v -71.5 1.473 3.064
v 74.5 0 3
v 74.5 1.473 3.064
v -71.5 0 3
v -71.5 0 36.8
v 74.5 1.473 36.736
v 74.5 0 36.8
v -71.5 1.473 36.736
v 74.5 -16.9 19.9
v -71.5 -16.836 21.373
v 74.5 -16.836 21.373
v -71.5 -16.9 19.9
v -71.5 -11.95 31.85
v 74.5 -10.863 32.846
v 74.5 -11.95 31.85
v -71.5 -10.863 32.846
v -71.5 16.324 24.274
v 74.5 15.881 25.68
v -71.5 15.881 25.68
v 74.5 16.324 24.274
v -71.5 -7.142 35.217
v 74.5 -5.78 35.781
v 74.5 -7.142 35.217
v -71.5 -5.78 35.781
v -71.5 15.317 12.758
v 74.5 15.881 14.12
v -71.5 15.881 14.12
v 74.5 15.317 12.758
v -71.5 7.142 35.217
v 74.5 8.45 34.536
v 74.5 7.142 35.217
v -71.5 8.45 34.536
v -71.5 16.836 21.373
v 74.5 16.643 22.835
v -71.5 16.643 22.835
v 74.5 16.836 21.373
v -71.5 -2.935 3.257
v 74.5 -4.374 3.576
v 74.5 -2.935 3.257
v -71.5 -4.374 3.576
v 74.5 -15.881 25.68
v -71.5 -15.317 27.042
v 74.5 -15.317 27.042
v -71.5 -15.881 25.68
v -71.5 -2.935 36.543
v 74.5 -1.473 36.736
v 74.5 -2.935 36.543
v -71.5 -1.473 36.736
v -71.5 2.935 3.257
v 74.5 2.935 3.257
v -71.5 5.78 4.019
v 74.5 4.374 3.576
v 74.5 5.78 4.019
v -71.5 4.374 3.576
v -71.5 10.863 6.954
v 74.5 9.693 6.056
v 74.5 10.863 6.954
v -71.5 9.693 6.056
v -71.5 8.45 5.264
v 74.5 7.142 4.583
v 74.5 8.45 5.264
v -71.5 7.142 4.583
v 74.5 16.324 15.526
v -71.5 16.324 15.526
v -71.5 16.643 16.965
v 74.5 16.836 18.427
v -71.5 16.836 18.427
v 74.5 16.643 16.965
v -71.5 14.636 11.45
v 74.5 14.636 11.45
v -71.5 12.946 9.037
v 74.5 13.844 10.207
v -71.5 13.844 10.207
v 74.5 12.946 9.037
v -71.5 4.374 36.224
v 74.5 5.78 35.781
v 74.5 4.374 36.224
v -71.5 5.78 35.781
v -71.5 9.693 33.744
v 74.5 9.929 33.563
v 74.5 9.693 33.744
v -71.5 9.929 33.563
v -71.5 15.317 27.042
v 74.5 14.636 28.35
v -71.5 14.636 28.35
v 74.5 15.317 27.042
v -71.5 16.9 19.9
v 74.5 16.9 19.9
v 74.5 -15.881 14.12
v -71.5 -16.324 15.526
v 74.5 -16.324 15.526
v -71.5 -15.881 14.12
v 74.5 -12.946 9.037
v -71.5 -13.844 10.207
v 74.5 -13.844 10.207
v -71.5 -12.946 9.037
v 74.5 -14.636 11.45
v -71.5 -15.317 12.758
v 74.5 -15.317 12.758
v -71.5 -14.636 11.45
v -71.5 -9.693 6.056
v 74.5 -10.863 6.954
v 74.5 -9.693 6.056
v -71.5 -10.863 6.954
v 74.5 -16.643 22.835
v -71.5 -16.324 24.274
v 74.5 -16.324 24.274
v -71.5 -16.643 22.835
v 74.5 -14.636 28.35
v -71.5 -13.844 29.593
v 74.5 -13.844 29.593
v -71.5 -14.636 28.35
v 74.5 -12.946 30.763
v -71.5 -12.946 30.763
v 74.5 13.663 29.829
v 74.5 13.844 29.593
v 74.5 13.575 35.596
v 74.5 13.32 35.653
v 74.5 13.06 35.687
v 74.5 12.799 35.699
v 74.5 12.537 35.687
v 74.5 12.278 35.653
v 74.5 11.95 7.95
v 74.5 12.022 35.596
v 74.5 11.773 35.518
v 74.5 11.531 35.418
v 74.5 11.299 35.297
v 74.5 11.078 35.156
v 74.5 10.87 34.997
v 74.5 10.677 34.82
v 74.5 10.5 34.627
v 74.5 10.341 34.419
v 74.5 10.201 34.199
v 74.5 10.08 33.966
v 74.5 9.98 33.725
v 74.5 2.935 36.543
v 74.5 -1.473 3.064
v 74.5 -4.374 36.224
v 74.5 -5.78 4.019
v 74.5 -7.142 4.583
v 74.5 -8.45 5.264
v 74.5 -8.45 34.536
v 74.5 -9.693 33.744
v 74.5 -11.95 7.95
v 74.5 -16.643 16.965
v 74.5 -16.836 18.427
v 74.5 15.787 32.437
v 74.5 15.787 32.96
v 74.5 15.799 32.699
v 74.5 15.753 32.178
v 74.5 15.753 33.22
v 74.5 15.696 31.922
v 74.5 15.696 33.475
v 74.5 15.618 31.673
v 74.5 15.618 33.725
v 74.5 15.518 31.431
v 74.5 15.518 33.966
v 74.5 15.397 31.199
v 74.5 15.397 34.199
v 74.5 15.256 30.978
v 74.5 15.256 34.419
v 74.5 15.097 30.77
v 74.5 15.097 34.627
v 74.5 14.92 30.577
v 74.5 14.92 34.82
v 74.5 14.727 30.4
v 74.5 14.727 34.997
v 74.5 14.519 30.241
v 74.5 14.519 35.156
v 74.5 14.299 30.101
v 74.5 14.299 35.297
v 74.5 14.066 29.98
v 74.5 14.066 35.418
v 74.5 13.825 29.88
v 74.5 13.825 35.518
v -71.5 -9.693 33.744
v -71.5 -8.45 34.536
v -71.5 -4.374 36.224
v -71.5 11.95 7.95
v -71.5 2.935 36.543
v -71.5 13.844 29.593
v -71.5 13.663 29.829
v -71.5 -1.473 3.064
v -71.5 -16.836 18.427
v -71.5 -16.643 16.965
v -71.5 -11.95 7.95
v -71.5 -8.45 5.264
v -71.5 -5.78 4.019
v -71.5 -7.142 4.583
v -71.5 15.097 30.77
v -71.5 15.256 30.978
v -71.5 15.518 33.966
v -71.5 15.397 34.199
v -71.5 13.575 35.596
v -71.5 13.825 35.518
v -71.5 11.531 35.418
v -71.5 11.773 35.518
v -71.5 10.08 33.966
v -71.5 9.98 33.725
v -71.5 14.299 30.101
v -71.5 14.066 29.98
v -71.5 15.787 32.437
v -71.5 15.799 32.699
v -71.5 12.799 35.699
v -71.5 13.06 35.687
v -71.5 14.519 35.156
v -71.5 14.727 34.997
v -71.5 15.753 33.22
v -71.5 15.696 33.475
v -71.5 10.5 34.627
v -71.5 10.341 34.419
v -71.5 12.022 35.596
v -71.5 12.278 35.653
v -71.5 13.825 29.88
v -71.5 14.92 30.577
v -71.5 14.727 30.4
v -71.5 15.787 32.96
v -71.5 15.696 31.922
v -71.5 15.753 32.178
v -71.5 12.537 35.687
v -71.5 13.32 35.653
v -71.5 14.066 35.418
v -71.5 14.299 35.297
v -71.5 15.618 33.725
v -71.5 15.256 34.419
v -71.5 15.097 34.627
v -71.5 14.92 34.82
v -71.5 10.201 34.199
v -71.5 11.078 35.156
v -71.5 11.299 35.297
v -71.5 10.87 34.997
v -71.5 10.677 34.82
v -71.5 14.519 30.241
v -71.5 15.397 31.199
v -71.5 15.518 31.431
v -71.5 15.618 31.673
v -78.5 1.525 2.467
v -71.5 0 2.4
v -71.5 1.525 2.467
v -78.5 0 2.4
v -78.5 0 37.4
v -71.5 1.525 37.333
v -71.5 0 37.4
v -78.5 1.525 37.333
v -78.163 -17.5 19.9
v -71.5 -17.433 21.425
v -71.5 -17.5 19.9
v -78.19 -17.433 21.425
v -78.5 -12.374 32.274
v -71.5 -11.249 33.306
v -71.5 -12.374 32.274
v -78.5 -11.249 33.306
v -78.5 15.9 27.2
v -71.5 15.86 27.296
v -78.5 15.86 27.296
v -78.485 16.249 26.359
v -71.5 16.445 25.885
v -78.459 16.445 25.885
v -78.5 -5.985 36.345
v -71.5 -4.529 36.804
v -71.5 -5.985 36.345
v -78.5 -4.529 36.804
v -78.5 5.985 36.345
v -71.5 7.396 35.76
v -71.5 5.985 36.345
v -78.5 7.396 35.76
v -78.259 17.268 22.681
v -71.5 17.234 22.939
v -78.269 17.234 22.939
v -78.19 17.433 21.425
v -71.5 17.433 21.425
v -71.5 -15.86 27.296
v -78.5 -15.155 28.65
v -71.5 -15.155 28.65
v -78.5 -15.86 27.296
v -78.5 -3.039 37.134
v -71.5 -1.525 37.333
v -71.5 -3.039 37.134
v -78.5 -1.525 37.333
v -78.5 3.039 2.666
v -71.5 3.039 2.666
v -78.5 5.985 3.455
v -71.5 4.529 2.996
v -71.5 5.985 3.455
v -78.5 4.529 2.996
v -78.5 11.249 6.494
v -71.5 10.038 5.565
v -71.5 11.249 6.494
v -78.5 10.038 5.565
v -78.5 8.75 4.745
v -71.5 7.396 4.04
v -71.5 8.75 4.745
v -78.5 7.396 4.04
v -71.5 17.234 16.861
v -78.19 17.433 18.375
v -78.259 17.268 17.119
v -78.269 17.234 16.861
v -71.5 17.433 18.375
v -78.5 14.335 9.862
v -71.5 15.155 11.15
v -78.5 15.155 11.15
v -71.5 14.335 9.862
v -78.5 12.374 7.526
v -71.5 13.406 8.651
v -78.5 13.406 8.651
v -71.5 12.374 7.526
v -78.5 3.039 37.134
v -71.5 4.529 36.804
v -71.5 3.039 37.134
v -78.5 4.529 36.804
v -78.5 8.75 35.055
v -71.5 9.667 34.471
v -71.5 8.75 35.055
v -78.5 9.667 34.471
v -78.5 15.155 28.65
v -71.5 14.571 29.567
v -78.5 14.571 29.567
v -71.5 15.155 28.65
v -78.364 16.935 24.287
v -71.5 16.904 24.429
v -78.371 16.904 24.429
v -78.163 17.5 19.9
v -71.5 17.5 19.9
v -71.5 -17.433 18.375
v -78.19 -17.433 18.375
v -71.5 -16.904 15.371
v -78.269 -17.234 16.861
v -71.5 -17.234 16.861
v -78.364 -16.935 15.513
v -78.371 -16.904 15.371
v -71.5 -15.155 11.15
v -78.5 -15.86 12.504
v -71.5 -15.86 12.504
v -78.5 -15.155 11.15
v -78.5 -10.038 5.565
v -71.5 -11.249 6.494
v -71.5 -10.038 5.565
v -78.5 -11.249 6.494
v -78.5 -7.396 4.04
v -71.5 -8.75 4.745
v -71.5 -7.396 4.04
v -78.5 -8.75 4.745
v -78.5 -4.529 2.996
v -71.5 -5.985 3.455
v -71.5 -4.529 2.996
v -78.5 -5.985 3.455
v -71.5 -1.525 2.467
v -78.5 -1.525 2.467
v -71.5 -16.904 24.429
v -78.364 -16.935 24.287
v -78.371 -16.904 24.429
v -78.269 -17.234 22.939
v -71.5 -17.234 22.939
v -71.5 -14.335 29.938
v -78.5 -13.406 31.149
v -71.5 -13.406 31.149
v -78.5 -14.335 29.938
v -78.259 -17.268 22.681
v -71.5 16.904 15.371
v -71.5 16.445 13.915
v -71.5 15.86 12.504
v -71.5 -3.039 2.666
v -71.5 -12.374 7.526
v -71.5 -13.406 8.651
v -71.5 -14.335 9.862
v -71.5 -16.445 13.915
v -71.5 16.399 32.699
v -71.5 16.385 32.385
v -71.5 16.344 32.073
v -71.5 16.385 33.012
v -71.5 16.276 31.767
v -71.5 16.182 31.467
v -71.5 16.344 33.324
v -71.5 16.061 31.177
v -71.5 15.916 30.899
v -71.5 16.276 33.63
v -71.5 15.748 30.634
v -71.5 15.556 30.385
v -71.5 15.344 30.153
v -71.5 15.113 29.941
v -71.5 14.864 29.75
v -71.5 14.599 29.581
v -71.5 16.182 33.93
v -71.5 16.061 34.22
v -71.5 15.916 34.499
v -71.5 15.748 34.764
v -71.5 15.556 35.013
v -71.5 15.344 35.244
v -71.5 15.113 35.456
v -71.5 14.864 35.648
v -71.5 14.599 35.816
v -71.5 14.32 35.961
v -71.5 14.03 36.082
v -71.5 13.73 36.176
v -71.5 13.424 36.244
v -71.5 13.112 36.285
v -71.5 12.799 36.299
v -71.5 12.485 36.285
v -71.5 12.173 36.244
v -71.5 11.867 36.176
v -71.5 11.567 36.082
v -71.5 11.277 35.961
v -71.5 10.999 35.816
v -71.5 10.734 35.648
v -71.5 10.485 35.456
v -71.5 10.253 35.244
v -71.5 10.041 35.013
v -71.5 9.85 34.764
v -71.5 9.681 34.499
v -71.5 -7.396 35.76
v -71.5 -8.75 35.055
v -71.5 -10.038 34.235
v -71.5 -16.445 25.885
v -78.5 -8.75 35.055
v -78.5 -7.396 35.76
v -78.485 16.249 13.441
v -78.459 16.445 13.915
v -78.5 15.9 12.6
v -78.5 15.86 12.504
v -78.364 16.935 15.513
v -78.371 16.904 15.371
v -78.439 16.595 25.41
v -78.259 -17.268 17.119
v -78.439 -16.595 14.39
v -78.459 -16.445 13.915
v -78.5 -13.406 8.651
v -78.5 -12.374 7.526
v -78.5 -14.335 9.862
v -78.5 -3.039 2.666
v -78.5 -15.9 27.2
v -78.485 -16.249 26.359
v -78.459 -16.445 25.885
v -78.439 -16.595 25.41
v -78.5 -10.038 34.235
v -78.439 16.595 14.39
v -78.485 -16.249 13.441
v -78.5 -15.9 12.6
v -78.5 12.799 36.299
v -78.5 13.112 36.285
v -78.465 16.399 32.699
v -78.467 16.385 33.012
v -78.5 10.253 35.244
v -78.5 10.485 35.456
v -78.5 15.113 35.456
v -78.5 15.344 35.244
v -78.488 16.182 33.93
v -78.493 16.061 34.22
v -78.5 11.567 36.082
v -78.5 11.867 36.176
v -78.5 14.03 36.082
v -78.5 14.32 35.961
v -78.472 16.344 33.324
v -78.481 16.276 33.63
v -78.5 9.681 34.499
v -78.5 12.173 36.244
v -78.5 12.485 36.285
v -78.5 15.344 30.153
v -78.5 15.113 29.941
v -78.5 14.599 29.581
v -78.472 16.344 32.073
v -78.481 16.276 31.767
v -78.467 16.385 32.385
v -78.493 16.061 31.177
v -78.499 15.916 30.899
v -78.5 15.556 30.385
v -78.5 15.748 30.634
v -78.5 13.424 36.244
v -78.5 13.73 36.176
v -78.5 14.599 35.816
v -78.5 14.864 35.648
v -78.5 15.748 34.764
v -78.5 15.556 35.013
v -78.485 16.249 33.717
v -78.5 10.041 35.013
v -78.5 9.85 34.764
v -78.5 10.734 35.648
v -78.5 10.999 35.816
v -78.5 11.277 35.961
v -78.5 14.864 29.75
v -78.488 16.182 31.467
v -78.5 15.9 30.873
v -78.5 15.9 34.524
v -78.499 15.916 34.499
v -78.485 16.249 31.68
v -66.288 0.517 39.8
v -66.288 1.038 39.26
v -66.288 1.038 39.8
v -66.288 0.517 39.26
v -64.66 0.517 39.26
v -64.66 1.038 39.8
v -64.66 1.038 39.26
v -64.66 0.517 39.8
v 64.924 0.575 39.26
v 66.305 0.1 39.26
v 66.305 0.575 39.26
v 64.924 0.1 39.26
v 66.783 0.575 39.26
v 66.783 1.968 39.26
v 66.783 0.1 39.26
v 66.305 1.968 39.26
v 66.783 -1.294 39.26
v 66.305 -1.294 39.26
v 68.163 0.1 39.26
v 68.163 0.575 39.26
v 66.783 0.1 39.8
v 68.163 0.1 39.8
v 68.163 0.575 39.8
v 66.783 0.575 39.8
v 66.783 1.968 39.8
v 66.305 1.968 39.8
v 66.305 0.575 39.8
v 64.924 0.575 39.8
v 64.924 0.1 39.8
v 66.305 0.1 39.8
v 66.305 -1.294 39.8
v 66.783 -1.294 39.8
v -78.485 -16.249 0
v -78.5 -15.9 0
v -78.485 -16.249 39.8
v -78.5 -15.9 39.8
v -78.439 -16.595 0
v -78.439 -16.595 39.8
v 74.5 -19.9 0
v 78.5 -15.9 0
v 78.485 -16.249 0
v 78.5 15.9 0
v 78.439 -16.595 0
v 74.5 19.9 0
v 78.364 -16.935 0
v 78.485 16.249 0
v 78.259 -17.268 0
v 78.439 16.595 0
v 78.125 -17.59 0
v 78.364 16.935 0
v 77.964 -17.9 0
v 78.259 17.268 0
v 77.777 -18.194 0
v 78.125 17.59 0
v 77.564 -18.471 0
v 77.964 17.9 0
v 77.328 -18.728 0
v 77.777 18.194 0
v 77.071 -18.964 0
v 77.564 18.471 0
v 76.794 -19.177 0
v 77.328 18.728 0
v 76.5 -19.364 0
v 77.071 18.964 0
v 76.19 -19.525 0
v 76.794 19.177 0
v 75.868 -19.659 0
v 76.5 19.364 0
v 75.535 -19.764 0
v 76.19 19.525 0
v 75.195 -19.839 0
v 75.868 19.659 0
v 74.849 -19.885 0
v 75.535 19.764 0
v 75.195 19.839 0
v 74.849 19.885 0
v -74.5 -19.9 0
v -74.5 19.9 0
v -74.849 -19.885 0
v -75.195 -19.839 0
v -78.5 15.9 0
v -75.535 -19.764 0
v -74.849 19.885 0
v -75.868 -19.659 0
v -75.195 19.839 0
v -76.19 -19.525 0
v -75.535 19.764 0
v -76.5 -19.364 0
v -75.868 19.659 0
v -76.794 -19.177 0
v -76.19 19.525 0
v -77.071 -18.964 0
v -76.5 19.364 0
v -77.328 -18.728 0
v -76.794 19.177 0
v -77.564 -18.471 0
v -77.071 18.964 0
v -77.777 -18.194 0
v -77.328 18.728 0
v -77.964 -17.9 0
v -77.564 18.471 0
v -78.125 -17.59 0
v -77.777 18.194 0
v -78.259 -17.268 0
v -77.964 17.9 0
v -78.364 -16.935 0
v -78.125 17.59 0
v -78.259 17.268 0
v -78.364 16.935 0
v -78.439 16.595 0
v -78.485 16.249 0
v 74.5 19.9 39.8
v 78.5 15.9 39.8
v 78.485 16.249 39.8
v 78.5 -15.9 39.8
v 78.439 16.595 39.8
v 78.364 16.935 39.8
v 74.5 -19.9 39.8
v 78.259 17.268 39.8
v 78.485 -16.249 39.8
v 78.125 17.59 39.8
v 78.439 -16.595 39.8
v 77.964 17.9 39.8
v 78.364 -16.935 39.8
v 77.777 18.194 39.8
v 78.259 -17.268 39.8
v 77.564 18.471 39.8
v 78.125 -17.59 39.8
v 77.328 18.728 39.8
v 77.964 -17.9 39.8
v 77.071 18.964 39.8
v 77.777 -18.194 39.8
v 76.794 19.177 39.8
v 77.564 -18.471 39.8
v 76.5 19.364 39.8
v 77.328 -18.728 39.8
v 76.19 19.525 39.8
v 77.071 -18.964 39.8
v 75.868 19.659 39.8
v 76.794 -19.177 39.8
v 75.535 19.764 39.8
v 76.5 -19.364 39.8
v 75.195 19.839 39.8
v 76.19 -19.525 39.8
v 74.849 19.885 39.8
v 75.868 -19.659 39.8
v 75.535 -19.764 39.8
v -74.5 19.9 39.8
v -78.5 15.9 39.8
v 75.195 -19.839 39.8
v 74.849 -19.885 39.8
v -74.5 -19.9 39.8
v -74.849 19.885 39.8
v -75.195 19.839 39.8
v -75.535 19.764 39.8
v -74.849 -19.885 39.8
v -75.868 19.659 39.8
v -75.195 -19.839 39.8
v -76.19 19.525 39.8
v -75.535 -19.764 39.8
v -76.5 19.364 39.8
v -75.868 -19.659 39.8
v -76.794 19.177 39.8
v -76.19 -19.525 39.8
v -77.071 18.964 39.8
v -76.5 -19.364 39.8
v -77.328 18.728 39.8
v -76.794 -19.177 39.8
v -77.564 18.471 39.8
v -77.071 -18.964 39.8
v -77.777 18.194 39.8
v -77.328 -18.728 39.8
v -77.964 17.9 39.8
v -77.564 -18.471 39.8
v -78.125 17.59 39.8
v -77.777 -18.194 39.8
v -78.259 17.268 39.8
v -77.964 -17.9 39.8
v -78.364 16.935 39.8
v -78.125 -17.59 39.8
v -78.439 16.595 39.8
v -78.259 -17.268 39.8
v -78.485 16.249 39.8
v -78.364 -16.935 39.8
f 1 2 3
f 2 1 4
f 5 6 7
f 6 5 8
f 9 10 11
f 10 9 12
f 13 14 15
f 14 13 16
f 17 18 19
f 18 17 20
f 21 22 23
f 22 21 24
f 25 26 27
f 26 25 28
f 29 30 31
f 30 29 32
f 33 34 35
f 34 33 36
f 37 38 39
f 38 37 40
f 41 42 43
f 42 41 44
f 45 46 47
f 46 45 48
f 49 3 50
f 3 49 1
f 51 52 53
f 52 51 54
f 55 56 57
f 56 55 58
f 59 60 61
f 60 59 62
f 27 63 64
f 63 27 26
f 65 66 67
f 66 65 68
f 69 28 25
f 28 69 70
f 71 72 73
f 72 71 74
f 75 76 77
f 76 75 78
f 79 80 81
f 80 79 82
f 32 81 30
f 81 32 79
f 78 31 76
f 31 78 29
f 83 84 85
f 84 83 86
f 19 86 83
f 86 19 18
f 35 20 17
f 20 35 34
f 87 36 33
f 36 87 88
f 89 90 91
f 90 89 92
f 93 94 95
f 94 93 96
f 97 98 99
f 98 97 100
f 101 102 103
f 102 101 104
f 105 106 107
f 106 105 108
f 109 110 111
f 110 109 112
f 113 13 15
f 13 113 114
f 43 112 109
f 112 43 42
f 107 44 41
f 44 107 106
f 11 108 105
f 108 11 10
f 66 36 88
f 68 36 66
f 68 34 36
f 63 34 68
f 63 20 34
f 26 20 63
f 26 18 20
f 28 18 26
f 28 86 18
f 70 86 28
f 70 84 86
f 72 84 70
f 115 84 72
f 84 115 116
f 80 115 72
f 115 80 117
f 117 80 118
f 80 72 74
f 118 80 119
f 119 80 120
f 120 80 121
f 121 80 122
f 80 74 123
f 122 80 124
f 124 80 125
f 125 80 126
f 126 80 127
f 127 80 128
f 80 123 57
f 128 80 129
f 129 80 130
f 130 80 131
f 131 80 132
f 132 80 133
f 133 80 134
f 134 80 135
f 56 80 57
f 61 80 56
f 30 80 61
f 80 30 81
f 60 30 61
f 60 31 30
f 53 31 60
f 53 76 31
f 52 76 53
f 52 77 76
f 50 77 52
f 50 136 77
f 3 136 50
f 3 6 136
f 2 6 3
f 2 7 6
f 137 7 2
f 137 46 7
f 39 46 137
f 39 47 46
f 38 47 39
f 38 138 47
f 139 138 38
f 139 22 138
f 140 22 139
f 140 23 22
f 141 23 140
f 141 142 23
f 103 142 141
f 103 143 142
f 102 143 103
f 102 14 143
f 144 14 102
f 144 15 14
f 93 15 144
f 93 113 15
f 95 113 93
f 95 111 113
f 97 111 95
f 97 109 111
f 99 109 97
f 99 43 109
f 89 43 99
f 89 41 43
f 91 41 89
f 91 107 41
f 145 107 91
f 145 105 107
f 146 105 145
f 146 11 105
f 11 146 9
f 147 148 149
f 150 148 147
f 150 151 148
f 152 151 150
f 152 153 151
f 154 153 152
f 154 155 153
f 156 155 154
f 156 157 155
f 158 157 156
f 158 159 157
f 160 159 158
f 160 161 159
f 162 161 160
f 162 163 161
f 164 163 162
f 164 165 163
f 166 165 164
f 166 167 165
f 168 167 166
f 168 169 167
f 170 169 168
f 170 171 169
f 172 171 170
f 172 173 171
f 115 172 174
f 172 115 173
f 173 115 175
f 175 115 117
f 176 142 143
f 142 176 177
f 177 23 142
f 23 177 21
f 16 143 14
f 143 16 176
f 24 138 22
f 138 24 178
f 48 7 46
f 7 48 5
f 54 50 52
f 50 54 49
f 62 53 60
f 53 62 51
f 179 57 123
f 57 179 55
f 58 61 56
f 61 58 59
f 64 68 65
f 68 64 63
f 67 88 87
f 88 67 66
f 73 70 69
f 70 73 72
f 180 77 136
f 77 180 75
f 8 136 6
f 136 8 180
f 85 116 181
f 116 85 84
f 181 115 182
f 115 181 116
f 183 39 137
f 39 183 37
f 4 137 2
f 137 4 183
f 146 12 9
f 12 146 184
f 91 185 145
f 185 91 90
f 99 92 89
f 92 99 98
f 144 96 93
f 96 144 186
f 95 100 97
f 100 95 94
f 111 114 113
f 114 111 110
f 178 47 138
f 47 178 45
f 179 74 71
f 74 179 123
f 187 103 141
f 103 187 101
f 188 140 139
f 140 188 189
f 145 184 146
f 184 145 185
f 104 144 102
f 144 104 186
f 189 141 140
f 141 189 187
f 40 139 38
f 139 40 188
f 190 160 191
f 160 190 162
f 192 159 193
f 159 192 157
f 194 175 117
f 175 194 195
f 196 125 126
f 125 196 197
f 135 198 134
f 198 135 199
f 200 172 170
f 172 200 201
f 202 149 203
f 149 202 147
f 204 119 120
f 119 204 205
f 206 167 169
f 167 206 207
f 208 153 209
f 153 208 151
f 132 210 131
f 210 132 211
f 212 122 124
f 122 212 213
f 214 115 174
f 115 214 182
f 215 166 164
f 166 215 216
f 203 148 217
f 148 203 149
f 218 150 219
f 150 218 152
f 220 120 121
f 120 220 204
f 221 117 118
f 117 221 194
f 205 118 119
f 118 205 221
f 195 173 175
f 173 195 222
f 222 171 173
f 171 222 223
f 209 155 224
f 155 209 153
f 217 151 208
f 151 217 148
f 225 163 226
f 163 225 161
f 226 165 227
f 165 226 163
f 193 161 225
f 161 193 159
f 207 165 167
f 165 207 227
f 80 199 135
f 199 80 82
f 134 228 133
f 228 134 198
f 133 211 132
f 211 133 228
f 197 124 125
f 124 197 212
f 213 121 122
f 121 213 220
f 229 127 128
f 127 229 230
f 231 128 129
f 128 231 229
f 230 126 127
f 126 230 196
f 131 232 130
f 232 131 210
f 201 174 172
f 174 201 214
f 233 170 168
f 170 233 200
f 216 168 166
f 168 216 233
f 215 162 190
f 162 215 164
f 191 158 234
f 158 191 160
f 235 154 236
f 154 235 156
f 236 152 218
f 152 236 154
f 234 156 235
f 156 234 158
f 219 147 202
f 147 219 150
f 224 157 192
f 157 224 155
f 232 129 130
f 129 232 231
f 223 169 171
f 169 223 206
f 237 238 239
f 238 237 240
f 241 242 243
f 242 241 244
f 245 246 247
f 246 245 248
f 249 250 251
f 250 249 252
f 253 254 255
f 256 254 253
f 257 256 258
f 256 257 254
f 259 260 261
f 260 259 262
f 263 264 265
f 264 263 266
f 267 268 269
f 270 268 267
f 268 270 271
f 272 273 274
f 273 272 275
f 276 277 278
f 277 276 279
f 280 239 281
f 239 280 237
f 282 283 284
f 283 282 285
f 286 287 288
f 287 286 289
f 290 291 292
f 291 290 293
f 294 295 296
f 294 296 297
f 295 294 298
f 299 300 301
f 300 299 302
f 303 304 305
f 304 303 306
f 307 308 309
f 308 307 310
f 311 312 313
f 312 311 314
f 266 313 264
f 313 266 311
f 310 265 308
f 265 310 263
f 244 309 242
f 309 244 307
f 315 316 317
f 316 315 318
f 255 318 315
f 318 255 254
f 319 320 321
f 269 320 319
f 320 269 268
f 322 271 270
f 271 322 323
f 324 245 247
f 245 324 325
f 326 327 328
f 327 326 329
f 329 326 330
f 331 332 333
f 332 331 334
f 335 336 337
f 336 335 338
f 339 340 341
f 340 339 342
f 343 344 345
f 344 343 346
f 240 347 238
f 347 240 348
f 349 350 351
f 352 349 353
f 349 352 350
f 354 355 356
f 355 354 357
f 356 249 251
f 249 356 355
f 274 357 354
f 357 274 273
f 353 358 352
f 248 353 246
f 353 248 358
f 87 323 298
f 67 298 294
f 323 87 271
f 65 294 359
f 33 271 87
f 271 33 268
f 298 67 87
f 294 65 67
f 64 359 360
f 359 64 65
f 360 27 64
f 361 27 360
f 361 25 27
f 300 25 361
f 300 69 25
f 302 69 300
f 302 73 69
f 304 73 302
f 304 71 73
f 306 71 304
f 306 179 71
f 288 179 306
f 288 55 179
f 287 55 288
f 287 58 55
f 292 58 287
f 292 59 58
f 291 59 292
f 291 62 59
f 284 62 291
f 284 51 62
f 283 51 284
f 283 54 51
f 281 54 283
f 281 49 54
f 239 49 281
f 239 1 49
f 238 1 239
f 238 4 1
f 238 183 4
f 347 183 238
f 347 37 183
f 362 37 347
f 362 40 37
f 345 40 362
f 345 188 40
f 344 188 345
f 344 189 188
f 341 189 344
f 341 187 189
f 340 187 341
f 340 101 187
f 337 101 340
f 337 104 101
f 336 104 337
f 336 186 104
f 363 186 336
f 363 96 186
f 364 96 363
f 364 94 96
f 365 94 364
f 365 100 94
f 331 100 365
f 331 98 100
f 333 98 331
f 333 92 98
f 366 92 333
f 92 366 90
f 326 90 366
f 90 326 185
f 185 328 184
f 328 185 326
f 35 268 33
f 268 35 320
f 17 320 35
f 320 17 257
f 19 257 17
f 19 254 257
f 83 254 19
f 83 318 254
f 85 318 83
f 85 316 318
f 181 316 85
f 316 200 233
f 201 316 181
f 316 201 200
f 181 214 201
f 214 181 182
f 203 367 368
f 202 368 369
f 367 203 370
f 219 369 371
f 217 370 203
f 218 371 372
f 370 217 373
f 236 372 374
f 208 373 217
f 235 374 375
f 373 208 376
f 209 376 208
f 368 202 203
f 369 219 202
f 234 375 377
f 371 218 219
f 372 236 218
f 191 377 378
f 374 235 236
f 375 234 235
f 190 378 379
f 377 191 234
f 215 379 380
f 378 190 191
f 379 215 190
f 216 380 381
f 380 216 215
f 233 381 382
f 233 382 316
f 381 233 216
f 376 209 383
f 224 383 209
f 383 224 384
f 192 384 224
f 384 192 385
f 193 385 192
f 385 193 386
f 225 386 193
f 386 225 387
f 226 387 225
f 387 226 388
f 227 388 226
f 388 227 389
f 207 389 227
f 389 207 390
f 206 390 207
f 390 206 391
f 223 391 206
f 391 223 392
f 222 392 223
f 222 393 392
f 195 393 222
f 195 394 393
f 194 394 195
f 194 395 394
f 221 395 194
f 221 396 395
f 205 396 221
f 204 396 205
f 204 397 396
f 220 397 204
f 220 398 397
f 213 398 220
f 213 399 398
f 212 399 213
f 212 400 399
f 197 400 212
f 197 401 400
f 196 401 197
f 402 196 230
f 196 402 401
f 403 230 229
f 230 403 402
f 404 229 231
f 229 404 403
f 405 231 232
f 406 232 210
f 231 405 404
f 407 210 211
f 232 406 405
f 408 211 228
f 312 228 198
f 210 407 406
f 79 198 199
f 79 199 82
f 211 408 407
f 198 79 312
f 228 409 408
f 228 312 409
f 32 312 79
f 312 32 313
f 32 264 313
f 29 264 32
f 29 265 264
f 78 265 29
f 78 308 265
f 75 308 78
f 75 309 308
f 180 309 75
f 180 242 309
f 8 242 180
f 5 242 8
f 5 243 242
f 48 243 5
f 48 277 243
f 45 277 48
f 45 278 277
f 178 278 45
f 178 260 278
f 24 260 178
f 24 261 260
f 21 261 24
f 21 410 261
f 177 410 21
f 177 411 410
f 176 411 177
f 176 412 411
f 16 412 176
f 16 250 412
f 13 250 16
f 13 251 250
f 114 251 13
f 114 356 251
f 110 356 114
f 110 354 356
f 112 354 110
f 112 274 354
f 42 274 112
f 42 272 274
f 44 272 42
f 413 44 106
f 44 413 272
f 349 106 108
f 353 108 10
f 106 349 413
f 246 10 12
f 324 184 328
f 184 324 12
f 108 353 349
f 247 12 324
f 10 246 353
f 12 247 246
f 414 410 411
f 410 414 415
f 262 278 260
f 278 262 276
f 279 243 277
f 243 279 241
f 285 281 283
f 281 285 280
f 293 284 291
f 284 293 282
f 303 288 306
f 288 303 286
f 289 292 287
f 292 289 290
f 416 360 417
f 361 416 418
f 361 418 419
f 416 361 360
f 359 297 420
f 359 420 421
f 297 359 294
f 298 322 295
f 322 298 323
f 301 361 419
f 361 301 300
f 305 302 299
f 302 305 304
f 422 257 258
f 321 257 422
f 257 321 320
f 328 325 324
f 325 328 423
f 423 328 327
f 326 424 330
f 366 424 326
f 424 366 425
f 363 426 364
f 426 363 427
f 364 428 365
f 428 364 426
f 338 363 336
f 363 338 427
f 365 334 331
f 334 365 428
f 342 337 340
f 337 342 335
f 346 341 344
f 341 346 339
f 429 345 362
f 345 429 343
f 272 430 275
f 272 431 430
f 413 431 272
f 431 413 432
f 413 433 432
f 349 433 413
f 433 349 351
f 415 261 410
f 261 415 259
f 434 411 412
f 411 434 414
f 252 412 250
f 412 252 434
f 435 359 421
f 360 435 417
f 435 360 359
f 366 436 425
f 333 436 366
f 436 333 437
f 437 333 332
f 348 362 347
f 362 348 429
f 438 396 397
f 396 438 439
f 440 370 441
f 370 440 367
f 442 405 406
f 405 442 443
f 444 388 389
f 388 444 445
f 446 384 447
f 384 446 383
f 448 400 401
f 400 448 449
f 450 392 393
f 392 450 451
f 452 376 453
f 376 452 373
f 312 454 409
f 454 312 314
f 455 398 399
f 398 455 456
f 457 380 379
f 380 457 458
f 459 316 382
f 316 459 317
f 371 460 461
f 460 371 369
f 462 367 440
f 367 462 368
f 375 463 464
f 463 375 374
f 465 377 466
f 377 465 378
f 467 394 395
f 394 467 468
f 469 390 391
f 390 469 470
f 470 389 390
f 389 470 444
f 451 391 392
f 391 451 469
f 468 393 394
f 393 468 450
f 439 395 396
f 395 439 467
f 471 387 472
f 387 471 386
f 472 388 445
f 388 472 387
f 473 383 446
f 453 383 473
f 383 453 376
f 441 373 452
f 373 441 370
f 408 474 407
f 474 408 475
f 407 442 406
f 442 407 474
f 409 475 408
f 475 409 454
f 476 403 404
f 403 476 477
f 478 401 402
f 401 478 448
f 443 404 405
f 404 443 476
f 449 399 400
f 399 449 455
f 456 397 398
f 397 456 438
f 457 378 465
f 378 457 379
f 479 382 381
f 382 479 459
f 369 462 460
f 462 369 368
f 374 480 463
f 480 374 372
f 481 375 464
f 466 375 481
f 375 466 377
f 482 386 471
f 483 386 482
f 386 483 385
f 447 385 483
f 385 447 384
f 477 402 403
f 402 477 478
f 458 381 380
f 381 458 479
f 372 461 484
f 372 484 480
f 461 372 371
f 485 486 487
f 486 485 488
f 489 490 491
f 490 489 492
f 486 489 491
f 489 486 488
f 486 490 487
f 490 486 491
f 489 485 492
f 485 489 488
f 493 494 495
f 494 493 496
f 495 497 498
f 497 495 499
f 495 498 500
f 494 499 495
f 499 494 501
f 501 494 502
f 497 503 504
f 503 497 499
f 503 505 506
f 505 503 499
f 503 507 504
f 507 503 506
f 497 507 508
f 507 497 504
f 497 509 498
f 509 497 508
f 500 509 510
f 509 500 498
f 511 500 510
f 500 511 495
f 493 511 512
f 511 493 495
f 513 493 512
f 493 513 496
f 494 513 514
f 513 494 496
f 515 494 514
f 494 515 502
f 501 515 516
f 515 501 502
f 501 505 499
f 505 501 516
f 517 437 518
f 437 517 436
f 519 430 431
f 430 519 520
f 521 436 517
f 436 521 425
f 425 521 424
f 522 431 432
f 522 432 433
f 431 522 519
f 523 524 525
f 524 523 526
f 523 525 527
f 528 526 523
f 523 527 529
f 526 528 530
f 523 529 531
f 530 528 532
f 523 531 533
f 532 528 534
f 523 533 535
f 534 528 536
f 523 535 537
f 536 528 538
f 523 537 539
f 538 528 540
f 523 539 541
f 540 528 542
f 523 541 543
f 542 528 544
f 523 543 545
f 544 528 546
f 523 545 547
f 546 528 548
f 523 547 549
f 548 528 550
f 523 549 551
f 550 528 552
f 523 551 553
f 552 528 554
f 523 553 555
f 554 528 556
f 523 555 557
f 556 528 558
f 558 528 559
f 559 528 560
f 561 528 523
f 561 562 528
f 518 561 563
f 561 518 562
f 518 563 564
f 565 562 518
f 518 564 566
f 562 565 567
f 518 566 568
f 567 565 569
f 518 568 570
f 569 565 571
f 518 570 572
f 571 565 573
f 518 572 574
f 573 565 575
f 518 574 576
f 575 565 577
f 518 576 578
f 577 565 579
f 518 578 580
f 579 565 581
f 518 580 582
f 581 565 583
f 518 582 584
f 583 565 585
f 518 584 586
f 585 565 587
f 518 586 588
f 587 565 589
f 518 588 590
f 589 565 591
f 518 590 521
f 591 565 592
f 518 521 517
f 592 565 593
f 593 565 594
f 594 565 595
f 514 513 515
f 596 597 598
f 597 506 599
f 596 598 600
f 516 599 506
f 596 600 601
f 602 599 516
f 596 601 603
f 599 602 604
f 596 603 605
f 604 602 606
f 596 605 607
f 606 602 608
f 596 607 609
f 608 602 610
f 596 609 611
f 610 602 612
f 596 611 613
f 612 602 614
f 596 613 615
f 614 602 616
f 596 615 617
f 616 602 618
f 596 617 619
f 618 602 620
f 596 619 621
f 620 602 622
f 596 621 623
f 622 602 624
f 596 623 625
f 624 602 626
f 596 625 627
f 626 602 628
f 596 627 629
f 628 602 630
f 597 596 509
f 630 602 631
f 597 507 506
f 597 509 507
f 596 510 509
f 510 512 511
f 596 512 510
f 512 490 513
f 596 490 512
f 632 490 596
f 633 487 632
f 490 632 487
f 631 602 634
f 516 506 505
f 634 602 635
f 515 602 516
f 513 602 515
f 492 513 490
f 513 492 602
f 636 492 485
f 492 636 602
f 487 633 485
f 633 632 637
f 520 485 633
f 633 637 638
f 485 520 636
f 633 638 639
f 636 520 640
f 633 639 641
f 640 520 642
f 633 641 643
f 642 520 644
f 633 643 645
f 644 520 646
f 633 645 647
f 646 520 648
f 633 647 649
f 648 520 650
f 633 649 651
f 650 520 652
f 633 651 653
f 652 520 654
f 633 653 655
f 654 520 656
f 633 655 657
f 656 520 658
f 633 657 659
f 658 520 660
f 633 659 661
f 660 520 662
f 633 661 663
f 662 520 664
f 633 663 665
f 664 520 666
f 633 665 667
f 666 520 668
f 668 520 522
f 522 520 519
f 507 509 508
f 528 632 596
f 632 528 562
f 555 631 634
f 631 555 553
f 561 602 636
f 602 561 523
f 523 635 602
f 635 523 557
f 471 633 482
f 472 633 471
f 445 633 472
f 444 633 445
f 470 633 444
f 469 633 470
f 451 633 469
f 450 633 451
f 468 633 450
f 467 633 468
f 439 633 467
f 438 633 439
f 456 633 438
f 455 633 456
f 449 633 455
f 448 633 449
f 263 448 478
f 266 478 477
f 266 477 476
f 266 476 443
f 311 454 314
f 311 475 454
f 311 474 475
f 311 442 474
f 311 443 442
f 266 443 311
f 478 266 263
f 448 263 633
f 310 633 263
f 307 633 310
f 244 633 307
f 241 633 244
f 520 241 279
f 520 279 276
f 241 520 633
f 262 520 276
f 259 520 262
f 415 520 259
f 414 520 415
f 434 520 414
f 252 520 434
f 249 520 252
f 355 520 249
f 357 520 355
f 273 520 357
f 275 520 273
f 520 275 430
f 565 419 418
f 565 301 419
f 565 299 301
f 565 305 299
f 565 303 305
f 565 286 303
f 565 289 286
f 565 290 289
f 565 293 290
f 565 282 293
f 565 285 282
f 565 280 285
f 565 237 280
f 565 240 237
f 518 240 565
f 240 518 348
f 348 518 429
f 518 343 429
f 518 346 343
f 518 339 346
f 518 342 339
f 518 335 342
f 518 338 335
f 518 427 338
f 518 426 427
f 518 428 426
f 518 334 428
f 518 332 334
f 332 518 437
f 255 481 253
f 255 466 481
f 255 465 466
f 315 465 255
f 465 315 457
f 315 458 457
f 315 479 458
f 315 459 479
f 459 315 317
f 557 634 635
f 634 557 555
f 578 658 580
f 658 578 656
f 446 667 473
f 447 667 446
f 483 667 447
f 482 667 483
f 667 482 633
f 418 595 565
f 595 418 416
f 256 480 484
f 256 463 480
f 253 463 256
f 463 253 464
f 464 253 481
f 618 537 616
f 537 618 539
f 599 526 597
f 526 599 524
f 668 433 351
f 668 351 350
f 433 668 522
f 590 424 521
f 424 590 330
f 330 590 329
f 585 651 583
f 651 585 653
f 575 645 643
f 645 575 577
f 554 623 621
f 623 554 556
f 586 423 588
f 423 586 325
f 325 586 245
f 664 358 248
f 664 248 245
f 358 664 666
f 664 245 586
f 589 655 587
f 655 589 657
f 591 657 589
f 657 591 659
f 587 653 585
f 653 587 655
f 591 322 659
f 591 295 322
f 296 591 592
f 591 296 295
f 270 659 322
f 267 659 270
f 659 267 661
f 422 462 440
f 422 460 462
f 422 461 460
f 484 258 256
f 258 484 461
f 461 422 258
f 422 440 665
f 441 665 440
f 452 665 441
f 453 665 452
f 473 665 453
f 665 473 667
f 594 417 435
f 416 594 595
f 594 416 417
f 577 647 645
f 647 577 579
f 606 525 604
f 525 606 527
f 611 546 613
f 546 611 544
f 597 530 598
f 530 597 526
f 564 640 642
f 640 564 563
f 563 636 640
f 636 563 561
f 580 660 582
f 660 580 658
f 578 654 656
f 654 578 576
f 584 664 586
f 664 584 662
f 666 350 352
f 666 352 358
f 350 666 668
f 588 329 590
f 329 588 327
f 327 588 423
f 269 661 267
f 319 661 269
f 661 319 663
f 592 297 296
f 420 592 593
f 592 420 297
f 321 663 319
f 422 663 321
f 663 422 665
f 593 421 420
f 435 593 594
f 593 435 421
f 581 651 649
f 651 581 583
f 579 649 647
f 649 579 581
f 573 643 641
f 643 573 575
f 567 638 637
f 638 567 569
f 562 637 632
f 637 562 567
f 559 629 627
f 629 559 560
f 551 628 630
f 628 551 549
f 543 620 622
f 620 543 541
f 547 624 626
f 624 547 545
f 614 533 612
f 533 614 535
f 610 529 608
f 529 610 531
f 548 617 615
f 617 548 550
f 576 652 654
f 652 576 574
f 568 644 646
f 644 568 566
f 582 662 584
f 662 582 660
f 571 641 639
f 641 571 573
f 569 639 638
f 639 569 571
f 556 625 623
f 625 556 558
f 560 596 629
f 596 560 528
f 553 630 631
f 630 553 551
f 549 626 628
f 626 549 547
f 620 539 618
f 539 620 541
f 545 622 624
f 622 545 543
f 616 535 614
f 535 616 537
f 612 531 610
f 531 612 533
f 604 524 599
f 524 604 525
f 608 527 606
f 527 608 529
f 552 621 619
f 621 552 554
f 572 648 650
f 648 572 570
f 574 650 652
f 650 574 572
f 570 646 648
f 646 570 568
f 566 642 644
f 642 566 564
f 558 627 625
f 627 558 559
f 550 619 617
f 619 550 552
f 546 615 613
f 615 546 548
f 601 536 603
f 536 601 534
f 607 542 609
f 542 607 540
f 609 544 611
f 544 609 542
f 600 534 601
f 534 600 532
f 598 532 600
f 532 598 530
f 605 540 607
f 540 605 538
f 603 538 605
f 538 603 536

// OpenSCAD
// OpenSCAD 2021.01 compatible
// Single-piece sleeve case for one 33140 LiFePO4 battery
//
// Design intent:
// - one-piece case, closed at +X end
// - open insertion mouth at -X end
// - battery slides in lengthwise
// - already-soldered wire runs parallel to the battery
// - cable channel is directly beside the battery cavity and slightly overlaps it,
//   forming a connected side groove so the wire can slide in with the cell.
// - cable channel is rotated toward a corner of the battery cavity, so it uses
//   existing corner material instead of forcing the sleeve wider on one side.
//
// Assumed 33140 size: 33 mm diameter x 140 mm length.

$fn = 72;

// -----------------------------
// Battery and cable parameters
// -----------------------------
battery_diameter       = 33.0;
battery_length         = 150.0;
diameter_clearance     = 0.8;
length_clearance       = 3.0;

cable_channel_d        = 6;    // adjust to your insulated wire diameter
cable_channel_overlap  = 1.8;    // overlap with battery cavity, makes connected groove

// Cable channel angular placement around the battery cavity cross-section.
// 0   = old position on the +Y side, which made the case wider.
// +45 = upper +Y/+Z corner, using existing corner material.
// -45 = lower +Y/-Z corner, using existing corner material.
// +90 / -90 are possible true vertical positions, but they usually require
// extra height instead of saving material.
cable_channel_angle_deg = 45;

// -----------------------------
// Case parameters
// -----------------------------
wall                   = 3.0;
closed_end_wall        = 4.0;
corner_radius          = 4.0;

mouth_relief_len       = 7.0;
mouth_extra_d          = 1.2;

// Output modes:
// "print"   = printable sleeve only
// "cutaway" = cutaway preview with optional reference cell/cable
// "solid_preview" = whole sleeve with optional references
view_mode              = "print";
show_reference_cell    = false;
show_reference_cable   = false;

// -----------------------------
// Derived geometry
// -----------------------------
cavity_d               = battery_diameter + diameter_clearance;
cell_r                 = cavity_d / 2;
cable_r                = cable_channel_d / 2;

case_len               = battery_length + length_clearance + closed_end_wall;
open_x                 = -case_len / 2;
closed_x               =  case_len / 2;
cavity_x0              = open_x - 1.0;                 // cuts through open mouth
cavity_x1              = closed_x - closed_end_wall;   // leaves closed end wall

cell_center_y          = 0;
cell_center_z          = wall + cell_r;

// Directly adjacent groove, rotated around the battery cavity. The overlap means
// the battery cavity and cable channel are one connected interior shape instead
// of two separated holes. OpenSCAD trigonometric functions use degrees.
cable_center_offset    = cell_r + cable_r - cable_channel_overlap;
cable_center_y         = cell_center_y + cable_center_offset * cos(cable_channel_angle_deg);
cable_center_z         = cell_center_z + cable_center_offset * sin(cable_channel_angle_deg);

// Outer sleeve bounds are now calculated from both the battery cavity and cable
// channel. At +/-45 degrees this keeps the old battery-only envelope and avoids
// the former one-sided +Y material extension.
case_y_min             = min(cell_center_y - cell_r, cable_center_y - cable_r) - wall;
case_y_max             = max(cell_center_y + cell_r, cable_center_y + cable_r) + wall;
case_z_min             = min(cell_center_z - cell_r - wall, cable_center_z - cable_r - wall);
case_z_max             = max(cell_center_z + cell_r + wall, cable_center_z + cable_r + wall);

label_z                = case_z_max + 0.02;
label_engrave_depth    = 0.55;

// -----------------------------
// Helpers
// -----------------------------
module x_cylinder_between(x0, x1, y, z, d) {
    translate([x0, y, z])
        rotate([0, 90, 0])
            cylinder(h = x1 - x0, d = d);
}

module rounded_box_bounds(xmin, xmax, ymin, ymax, zmin, zmax, r) {
    h = zmax - zmin;
    translate([0, 0, zmin])
        hull() {
            for (x = [xmin + r, xmax - r])
                for (y = [ymin + r, ymax - r])
                    translate([x, y, 0])
                        cylinder(h = h, r = r);
        }
}

module outer_sleeve() {
    rounded_box_bounds(
        open_x, closed_x,
        case_y_min, case_y_max,
        case_z_min, case_z_max,
        corner_radius
    );
}

module internal_voids() {
    // Main battery cavity: open at -X, blind at +X.
    x_cylinder_between(cavity_x0, cavity_x1, cell_center_y, cell_center_z, cavity_d);

    // Parallel cable channel directly next to the battery cavity.
    // Because it overlaps the battery cavity, it creates a side groove for the wire.
    x_cylinder_between(cavity_x0, cavity_x1, cable_center_y, cable_center_z, cable_channel_d);

    // Open-mouth relief so cell + soldered wire start more easily.
    x_cylinder_between(open_x - 1.2, open_x + mouth_relief_len,
                       cell_center_y, cell_center_z, cavity_d + mouth_extra_d);

    x_cylinder_between(open_x - 1.2, open_x + mouth_relief_len,
                       cable_center_y, cable_center_z, cable_channel_d + mouth_extra_d);
}

module polarity_mark_cutouts() {
    // Recessed marks cut inward into the top surface.
    // This avoids raised outward-facing text that can be damaged or interfere
    // when the sleeve is printed standing on the closed end.
    translate([open_x + 13, (case_y_min + case_y_max) / 2, case_z_max - label_engrave_depth + 0.01])
        linear_extrude(height = label_engrave_depth + 0.04)
            text("-", size = 4.8, halign = "center", valign = "center");

    translate([closed_x - 12, (case_y_min + case_y_max) / 2, case_z_max - label_engrave_depth + 0.01])
        linear_extrude(height = label_engrave_depth + 0.04)
            text("+", size = 4.8, halign = "center", valign = "center");
}

module sleeve_case() {
    difference() {
        outer_sleeve();
        internal_voids();
        polarity_mark_cutouts();
    }
}

module reference_cell_and_wire() {
    if (show_reference_cell) {
        color([0.15, 0.15, 0.15, 0.35])
            x_cylinder_between(open_x + 2, open_x + 2 + battery_length,
                               cell_center_y, cell_center_z, battery_diameter);
    }

    if (show_reference_cable) {
        color([0.05, 0.1, 1.0, 0.55])
            x_cylinder_between(open_x + 1, cavity_x1 - 1,
                               cable_center_y, cable_center_z, cable_channel_d * 0.65);
    }
}

module solid_preview() {
    sleeve_case();
    reference_cell_and_wire();
}

module cutaway_view() {
    difference() {
        union() {
            sleeve_case();
            reference_cell_and_wire();
        }

        // Remove a front/top quadrant to expose the battery cavity and corner cable groove.
        translate([open_x - 5, case_y_min - 20, (case_z_min + case_z_max) / 2])
            cube([case_len + 10, (case_y_max - case_y_min) + 40,
                  (case_z_max - case_z_min) / 2 + 20]);

        translate([open_x - 5, case_y_min - 20, case_z_min - 2])
            cube([case_len + 10, (case_y_max - case_y_min) / 2 + 20,
                  (case_z_max - case_z_min) + 4]);
    }
}

// -----------------------------
// Output
// -----------------------------
if (view_mode == "cutaway")
    cutaway_view();
else if (view_mode == "solid_preview")
    solid_preview();
else
    sleeve_case();
